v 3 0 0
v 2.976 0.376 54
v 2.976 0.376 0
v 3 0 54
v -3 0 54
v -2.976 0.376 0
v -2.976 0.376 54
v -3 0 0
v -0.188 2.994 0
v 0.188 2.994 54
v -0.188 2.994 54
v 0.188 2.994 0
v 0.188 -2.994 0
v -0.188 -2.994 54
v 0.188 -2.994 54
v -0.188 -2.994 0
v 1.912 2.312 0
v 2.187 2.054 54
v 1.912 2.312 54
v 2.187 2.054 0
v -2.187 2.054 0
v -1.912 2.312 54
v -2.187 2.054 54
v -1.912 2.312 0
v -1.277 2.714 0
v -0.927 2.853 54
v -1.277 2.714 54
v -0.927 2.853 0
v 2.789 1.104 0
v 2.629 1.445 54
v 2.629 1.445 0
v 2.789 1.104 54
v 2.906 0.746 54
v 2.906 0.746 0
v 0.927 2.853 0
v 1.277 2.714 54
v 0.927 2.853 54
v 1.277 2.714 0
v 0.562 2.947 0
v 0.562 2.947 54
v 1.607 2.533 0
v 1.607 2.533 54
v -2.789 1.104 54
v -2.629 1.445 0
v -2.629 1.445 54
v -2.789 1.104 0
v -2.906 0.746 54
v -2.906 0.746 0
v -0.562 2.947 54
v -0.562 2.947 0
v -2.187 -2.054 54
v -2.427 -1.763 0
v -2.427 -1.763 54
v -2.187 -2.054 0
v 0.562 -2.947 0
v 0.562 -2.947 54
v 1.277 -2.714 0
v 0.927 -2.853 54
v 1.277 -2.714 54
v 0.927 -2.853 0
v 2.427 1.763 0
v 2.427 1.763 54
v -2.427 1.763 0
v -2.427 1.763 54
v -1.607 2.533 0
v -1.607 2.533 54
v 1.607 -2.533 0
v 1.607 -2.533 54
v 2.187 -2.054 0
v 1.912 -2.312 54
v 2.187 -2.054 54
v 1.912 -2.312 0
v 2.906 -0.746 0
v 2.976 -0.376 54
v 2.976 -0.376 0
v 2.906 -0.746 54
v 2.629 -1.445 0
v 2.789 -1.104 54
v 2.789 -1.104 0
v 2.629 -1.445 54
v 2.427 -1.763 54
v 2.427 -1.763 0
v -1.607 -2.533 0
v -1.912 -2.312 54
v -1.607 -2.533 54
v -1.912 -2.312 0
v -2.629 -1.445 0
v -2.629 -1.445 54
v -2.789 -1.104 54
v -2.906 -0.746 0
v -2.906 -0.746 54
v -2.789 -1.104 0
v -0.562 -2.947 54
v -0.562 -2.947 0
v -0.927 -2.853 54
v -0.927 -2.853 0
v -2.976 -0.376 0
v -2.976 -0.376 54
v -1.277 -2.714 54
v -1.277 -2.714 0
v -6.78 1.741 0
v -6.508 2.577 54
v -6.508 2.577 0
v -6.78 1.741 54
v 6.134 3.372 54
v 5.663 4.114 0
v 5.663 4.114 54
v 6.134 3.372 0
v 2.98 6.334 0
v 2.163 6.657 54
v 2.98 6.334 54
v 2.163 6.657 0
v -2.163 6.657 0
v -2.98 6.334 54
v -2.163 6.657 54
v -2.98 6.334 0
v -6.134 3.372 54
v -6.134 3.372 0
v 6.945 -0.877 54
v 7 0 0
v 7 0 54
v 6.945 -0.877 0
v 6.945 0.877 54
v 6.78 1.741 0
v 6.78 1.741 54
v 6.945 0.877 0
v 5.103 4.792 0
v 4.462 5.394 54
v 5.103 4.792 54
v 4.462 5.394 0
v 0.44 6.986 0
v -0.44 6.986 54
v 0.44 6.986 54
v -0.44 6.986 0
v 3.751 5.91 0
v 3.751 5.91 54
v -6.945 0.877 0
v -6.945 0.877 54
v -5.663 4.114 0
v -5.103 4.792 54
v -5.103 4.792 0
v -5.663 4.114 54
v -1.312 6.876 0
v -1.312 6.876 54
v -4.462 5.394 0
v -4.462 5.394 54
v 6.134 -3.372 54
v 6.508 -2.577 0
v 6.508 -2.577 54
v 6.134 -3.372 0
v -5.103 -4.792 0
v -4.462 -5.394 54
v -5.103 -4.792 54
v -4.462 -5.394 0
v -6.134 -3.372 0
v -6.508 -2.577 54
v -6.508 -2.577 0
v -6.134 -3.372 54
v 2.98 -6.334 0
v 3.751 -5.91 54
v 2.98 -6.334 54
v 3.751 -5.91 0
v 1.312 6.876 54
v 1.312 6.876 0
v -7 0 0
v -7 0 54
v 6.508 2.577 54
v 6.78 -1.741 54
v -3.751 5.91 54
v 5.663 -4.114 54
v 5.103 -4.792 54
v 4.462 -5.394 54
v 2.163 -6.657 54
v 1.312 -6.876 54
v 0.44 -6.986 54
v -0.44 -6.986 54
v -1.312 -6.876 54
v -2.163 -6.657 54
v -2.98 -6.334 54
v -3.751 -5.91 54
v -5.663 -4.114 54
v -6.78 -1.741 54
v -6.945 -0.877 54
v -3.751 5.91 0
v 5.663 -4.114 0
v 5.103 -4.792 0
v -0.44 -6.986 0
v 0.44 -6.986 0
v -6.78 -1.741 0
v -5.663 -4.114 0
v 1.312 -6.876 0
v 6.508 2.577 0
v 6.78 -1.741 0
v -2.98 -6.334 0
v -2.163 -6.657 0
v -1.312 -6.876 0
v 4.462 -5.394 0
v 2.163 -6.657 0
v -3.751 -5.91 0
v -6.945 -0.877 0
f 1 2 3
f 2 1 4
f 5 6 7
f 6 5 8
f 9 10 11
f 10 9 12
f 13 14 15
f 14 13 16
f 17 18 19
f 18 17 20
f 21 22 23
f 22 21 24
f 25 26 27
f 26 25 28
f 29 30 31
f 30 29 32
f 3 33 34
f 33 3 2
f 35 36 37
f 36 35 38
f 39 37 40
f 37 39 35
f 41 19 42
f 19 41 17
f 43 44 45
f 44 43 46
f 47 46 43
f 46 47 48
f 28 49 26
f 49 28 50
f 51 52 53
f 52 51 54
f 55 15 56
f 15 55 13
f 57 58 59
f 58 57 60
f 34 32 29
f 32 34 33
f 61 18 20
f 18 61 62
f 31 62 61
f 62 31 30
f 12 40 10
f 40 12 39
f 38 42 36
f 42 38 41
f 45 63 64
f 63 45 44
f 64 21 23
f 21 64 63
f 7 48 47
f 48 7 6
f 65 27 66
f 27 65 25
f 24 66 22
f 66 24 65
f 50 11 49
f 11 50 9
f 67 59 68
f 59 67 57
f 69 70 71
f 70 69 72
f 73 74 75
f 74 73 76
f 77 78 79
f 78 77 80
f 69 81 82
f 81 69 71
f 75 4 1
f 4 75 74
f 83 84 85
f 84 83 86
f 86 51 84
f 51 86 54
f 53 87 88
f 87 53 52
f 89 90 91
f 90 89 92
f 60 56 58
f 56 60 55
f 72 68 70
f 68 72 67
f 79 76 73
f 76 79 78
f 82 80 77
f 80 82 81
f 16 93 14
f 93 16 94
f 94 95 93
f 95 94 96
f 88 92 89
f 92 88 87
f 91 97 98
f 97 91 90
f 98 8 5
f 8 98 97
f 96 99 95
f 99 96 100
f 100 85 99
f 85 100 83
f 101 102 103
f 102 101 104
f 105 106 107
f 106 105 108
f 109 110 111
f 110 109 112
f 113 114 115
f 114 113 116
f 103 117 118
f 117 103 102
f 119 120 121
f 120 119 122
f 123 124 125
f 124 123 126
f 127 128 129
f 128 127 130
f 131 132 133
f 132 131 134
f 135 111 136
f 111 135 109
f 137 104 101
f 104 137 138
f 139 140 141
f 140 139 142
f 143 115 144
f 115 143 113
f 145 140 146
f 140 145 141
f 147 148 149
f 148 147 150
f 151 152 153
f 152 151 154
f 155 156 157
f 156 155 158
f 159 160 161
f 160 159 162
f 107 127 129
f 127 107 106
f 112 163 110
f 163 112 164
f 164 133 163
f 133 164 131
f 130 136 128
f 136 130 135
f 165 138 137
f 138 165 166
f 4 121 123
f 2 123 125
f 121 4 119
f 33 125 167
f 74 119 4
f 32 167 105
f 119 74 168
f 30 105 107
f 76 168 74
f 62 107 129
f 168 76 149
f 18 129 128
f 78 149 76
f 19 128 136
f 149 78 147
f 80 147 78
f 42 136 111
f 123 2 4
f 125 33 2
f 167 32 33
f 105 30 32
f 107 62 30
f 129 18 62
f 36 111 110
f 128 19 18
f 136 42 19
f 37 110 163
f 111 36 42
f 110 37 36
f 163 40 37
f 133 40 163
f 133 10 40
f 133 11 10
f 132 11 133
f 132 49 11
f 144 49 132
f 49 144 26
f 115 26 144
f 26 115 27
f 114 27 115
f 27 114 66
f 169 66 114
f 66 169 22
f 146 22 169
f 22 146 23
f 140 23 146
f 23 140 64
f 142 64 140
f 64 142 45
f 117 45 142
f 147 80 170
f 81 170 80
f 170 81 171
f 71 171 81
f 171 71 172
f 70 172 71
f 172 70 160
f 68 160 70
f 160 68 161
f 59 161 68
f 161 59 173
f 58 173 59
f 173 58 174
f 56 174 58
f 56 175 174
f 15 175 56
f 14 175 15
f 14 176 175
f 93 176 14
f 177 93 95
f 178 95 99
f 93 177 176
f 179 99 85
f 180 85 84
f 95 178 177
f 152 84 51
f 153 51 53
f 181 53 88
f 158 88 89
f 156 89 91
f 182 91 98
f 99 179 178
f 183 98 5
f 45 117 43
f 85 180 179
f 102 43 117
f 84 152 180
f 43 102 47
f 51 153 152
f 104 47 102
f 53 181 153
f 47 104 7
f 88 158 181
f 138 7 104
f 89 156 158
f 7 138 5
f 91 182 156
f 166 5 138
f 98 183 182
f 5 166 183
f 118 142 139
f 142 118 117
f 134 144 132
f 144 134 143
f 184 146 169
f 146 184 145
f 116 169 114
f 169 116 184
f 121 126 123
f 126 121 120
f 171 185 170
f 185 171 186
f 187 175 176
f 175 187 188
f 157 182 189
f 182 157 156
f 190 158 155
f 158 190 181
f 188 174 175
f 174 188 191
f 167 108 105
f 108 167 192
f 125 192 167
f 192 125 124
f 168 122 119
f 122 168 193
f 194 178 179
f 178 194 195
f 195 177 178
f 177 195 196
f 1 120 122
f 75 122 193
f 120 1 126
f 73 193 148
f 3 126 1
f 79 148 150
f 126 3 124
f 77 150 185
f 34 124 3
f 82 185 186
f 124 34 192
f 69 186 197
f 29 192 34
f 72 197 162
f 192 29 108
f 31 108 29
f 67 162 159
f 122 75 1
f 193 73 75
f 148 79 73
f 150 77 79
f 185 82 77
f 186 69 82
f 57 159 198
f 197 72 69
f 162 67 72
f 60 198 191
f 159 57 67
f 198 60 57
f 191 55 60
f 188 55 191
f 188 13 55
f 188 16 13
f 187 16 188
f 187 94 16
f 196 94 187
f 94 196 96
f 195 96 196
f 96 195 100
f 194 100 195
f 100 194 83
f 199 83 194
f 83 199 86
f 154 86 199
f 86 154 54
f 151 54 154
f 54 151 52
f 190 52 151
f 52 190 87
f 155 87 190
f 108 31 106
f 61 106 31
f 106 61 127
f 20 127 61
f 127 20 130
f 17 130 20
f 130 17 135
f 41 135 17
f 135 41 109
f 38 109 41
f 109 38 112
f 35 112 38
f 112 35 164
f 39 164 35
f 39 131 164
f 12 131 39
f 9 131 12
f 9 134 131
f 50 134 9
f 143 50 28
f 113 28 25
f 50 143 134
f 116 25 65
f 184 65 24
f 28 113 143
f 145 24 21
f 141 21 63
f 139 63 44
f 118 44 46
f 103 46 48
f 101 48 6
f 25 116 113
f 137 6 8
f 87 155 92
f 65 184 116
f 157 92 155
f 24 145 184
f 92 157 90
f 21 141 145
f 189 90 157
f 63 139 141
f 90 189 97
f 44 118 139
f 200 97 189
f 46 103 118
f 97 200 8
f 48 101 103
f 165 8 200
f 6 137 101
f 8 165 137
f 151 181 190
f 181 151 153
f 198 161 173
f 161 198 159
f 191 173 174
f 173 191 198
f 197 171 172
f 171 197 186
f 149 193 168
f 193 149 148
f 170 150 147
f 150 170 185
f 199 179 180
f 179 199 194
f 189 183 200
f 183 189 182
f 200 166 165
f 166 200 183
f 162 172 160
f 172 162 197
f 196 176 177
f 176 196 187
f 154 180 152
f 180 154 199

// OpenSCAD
$fn = 50;


difference() {
	union() {
		cylinder(h = 54, r = 7.0000000000);
	}
	union() {
		translate(v = [0, 0, -100]) {
			cylinder(h = 200, r = 3.0000000000);
		}
		translate(v = [0, 0, -100]) {
			cylinder(h = 200, r = 1.5000000000);
		}
	}
}
